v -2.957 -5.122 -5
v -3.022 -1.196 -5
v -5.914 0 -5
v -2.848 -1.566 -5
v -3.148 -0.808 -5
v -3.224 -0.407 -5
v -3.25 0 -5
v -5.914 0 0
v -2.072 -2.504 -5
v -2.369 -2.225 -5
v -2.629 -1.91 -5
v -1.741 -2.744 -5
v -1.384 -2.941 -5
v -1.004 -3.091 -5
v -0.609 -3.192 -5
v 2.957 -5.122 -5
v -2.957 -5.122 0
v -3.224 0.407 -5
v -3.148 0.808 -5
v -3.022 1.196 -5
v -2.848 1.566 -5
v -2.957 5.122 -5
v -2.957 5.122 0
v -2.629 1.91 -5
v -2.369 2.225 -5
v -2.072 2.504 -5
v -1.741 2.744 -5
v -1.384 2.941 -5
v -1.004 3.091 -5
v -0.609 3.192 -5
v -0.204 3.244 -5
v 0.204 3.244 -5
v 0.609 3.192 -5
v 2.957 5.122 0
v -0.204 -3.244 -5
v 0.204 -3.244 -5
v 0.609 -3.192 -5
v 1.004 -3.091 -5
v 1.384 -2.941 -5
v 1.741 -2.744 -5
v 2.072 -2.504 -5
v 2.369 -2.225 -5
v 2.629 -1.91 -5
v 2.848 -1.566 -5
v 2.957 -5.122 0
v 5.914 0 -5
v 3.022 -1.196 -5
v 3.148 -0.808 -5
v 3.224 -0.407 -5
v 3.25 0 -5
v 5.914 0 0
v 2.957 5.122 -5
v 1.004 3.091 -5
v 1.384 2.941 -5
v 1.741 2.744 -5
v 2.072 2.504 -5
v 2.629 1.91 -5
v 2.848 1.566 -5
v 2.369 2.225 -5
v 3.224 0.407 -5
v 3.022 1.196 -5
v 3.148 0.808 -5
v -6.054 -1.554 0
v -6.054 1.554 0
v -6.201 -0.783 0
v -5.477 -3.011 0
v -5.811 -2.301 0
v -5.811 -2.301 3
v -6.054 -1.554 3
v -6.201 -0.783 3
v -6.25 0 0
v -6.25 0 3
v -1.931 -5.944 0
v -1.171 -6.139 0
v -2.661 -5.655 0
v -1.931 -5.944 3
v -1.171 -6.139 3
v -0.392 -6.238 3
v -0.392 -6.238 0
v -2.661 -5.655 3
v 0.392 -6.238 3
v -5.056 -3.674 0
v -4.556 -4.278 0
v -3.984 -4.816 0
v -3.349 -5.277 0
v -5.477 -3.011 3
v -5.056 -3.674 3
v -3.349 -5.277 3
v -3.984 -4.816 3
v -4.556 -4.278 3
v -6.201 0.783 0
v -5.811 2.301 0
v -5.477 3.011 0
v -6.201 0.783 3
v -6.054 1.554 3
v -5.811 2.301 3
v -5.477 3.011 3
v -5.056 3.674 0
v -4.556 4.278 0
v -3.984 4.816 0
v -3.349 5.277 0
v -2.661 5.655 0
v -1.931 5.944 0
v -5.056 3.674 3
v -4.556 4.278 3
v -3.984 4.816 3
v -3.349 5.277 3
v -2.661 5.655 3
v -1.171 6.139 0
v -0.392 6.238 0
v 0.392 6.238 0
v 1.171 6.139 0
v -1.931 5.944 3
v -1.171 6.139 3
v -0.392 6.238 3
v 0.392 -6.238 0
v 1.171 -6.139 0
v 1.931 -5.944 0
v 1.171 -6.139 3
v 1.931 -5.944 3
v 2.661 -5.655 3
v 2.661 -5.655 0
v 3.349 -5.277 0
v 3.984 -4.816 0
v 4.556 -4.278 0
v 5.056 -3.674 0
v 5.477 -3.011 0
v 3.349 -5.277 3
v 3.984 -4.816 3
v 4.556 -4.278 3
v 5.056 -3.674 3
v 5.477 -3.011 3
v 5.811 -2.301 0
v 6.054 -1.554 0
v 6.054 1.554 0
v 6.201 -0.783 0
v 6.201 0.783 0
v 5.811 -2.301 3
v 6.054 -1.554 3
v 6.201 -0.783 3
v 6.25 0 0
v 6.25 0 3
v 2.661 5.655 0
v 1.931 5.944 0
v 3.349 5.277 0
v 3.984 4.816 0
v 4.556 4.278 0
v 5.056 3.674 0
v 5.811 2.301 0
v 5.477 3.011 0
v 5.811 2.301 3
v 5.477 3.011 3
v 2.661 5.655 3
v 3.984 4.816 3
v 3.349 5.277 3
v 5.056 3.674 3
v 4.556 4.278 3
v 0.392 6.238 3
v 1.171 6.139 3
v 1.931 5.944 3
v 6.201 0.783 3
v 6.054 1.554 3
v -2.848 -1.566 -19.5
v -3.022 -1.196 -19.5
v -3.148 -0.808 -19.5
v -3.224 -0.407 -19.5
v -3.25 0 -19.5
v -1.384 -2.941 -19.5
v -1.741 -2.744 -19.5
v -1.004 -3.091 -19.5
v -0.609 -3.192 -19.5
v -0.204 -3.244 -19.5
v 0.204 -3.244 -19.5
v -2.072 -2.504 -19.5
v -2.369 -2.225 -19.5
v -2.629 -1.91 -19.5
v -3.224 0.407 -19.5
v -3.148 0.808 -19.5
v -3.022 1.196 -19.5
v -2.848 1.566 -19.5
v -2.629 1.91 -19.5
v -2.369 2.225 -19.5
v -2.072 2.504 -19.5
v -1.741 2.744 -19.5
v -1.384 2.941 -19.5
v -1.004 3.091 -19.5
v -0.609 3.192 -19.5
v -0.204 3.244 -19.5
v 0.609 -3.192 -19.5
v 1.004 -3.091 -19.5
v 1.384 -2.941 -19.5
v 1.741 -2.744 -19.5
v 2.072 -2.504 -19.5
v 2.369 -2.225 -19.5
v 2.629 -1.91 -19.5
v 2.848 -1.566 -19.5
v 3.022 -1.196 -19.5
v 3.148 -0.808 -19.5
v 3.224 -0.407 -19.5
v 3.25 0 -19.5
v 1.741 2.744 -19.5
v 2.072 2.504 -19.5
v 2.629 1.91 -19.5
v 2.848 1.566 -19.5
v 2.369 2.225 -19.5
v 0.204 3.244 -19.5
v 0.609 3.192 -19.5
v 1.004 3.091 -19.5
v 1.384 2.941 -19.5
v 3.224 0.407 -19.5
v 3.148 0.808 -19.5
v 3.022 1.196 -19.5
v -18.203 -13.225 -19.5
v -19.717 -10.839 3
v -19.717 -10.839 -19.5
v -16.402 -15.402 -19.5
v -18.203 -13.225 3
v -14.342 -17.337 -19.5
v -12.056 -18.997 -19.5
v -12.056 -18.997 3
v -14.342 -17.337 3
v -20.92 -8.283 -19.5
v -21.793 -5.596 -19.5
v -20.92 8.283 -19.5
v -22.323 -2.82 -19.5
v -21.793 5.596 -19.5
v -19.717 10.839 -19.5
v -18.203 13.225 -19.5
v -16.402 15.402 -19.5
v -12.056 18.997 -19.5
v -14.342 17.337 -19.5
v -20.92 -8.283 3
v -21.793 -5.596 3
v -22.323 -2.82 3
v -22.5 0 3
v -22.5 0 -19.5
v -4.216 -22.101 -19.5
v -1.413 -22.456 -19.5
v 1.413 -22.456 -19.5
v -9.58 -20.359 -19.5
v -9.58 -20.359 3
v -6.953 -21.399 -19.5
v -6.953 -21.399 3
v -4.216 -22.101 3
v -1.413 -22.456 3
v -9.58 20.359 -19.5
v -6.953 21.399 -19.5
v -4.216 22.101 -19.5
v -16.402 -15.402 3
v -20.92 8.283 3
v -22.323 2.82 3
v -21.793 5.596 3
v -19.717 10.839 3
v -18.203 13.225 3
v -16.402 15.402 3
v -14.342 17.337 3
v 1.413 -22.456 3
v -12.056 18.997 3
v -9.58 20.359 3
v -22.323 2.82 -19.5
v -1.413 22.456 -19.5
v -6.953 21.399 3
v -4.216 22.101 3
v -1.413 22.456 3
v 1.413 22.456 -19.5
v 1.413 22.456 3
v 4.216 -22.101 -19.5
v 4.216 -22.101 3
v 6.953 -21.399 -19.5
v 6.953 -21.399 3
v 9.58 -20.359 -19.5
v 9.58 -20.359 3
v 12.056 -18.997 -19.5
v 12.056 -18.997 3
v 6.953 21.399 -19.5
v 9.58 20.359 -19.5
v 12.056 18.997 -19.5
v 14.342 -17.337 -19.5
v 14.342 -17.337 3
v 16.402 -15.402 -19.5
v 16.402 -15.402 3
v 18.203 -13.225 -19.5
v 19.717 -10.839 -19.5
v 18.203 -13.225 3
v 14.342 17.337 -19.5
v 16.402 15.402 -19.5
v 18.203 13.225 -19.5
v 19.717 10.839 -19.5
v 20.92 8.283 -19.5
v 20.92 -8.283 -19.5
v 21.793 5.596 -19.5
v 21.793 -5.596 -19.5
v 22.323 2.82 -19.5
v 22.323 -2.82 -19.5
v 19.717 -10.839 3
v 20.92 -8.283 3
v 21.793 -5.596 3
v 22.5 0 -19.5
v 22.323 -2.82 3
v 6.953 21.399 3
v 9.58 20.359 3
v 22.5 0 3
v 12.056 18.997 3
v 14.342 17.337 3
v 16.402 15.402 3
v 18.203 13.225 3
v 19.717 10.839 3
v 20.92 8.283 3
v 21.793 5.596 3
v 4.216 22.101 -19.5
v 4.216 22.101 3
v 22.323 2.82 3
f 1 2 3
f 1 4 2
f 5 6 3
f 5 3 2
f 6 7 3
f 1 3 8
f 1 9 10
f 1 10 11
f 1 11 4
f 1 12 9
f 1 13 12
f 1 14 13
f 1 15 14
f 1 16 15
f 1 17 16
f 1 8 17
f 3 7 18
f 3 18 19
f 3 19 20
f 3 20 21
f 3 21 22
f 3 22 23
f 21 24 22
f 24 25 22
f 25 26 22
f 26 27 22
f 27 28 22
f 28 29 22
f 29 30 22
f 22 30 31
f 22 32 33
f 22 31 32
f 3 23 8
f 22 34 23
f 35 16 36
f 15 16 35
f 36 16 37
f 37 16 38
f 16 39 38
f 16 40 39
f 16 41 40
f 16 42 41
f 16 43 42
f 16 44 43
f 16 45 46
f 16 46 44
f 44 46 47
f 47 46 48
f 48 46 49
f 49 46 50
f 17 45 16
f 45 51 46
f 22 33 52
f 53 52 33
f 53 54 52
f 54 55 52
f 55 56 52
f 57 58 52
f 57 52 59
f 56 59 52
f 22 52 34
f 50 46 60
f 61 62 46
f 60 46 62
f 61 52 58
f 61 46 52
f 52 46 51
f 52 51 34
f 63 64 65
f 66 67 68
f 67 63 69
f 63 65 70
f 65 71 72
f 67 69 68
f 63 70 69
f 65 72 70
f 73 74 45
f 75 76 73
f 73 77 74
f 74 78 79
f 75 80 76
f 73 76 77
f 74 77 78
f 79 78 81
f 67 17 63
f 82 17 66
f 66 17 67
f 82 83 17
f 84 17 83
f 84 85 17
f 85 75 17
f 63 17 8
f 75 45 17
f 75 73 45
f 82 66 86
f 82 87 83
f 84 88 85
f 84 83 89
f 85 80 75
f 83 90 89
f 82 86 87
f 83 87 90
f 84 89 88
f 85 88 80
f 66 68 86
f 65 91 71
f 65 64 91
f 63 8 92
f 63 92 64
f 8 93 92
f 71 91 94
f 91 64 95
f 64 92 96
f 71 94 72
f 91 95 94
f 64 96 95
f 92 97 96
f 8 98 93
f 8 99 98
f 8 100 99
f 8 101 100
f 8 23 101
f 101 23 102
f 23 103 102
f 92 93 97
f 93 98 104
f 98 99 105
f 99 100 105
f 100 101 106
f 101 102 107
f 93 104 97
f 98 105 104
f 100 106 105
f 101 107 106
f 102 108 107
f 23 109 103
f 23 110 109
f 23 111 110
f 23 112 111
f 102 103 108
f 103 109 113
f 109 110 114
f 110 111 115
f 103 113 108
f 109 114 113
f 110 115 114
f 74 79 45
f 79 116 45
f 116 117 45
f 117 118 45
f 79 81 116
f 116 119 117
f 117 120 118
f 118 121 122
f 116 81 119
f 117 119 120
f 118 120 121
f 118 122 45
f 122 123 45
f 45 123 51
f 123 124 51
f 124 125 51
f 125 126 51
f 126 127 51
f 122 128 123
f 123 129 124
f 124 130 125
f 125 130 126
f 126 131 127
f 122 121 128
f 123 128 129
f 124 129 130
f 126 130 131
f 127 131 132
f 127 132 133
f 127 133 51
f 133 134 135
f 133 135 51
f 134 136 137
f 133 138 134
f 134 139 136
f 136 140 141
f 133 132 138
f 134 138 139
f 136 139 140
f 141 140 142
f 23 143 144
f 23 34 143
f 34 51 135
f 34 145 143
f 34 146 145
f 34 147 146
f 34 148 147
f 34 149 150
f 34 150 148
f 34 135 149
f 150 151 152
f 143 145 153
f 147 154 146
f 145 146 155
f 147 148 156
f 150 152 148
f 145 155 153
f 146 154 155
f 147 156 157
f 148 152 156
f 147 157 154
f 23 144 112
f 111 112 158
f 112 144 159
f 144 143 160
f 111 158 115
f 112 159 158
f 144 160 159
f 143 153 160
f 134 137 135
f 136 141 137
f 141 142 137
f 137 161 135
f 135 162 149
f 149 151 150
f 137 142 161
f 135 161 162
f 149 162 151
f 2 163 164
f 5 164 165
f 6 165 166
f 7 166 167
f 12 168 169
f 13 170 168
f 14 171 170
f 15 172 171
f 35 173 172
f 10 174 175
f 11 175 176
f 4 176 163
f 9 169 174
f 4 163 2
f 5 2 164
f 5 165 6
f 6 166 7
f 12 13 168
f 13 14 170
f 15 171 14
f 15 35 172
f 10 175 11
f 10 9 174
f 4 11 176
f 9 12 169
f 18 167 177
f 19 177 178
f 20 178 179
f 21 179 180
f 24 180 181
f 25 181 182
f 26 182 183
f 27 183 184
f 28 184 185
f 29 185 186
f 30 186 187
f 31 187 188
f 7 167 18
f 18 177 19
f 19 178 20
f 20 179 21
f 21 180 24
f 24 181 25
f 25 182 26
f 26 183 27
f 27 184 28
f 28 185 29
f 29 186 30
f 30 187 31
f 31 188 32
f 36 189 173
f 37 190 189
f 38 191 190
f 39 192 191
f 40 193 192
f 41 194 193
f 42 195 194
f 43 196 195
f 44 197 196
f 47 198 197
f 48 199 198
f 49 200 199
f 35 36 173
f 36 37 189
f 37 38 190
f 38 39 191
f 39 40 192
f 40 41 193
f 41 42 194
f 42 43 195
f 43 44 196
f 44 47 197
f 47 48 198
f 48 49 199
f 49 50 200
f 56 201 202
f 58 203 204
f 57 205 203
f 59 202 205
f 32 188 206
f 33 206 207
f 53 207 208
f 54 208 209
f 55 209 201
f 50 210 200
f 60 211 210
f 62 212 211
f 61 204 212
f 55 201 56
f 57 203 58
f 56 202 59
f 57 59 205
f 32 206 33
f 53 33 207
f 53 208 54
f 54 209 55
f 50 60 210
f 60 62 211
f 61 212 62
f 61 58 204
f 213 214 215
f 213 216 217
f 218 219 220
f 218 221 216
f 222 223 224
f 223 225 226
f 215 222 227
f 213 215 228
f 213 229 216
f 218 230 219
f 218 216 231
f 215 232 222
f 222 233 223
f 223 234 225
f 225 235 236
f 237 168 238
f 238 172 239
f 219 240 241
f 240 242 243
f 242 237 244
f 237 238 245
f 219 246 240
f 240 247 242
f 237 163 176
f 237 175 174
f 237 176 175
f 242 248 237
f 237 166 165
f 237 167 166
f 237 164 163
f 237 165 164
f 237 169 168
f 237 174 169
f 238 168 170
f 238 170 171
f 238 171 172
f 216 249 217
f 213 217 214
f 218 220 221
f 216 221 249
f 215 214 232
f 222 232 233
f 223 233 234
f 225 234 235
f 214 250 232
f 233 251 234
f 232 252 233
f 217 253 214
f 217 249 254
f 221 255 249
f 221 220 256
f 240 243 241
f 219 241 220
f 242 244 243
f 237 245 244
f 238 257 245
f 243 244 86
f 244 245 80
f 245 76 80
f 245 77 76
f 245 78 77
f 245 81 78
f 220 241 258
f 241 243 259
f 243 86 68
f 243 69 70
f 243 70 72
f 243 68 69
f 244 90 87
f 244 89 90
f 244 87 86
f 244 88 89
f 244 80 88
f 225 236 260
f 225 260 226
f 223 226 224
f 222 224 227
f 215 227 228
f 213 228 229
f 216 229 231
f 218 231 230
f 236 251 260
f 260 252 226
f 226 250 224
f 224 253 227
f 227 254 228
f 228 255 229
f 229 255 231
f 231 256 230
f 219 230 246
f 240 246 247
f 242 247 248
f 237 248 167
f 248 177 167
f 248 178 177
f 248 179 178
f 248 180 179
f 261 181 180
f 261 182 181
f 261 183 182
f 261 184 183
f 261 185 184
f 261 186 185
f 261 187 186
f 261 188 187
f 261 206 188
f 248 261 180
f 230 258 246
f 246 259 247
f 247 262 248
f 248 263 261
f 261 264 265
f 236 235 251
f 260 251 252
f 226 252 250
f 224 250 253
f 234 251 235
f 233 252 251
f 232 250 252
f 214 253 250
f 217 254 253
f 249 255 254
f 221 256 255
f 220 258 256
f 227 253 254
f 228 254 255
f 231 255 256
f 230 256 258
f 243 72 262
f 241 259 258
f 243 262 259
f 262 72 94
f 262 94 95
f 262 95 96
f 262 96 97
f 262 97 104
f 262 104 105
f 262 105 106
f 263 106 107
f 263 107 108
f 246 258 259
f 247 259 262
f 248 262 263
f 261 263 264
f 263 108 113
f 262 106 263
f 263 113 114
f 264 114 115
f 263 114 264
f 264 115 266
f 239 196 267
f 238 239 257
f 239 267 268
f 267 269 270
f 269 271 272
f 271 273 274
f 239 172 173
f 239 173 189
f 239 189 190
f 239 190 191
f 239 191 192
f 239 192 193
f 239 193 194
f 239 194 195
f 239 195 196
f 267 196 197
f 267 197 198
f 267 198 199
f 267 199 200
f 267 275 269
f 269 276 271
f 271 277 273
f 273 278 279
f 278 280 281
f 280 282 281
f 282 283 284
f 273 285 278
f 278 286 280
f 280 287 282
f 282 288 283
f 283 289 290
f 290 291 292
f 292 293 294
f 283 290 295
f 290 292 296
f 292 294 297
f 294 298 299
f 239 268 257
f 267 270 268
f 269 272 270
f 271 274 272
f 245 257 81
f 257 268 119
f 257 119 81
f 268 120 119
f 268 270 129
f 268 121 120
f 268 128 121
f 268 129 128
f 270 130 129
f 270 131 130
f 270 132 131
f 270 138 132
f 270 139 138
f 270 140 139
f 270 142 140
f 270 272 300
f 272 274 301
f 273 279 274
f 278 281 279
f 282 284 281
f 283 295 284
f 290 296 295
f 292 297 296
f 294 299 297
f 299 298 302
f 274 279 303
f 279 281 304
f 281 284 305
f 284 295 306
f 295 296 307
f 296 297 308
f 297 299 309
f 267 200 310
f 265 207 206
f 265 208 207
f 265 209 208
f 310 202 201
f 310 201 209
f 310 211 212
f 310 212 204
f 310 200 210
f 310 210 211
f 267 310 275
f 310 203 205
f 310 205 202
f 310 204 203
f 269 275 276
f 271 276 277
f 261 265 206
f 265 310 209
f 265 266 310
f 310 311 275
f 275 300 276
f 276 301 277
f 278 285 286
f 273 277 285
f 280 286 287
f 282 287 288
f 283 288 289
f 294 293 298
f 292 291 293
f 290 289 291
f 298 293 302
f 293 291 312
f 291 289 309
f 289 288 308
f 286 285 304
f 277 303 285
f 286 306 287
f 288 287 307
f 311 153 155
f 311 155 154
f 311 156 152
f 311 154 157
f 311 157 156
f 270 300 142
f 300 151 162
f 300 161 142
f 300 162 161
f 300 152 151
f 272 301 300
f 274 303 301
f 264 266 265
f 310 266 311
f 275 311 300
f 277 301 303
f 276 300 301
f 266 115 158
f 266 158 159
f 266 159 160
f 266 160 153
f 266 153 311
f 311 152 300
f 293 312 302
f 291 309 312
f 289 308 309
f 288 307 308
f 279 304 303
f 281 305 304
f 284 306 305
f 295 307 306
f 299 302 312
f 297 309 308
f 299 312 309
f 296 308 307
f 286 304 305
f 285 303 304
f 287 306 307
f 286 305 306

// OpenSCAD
$fn = 50;

difference() {
	union() {
		translate(v = [0, 0, -19.5]) {
			cylinder(h = 22.5, r = 22.5);
		}
	}
	union() {
		translate(v = [0, 0, 0]) {
			rotate(a = [0, 0, 0]) {
				difference() {
					union() {
						translate(v = [0, 0, -5]) {
							linear_extrude(height = 5) {
								polygon(points = [[5.914249999999999, 0.0], [2.957125, 5.1218907443321156], [-2.9571249999999982, 5.1218907443321156], [-5.914249999999999, 7.242867331857232e-16], [-2.9571250000000022, -5.121890744332115], [2.9571249999999956, -5.121890744332118]]);
							}
						}
					}
					union();
				}
			}
		}
		#cylinder(h = 3, r = 6.25);
		#translate(v = [0, 0, -100.0]) {
			cylinder(h = 200, r = 3.25);
		}
	}
}
